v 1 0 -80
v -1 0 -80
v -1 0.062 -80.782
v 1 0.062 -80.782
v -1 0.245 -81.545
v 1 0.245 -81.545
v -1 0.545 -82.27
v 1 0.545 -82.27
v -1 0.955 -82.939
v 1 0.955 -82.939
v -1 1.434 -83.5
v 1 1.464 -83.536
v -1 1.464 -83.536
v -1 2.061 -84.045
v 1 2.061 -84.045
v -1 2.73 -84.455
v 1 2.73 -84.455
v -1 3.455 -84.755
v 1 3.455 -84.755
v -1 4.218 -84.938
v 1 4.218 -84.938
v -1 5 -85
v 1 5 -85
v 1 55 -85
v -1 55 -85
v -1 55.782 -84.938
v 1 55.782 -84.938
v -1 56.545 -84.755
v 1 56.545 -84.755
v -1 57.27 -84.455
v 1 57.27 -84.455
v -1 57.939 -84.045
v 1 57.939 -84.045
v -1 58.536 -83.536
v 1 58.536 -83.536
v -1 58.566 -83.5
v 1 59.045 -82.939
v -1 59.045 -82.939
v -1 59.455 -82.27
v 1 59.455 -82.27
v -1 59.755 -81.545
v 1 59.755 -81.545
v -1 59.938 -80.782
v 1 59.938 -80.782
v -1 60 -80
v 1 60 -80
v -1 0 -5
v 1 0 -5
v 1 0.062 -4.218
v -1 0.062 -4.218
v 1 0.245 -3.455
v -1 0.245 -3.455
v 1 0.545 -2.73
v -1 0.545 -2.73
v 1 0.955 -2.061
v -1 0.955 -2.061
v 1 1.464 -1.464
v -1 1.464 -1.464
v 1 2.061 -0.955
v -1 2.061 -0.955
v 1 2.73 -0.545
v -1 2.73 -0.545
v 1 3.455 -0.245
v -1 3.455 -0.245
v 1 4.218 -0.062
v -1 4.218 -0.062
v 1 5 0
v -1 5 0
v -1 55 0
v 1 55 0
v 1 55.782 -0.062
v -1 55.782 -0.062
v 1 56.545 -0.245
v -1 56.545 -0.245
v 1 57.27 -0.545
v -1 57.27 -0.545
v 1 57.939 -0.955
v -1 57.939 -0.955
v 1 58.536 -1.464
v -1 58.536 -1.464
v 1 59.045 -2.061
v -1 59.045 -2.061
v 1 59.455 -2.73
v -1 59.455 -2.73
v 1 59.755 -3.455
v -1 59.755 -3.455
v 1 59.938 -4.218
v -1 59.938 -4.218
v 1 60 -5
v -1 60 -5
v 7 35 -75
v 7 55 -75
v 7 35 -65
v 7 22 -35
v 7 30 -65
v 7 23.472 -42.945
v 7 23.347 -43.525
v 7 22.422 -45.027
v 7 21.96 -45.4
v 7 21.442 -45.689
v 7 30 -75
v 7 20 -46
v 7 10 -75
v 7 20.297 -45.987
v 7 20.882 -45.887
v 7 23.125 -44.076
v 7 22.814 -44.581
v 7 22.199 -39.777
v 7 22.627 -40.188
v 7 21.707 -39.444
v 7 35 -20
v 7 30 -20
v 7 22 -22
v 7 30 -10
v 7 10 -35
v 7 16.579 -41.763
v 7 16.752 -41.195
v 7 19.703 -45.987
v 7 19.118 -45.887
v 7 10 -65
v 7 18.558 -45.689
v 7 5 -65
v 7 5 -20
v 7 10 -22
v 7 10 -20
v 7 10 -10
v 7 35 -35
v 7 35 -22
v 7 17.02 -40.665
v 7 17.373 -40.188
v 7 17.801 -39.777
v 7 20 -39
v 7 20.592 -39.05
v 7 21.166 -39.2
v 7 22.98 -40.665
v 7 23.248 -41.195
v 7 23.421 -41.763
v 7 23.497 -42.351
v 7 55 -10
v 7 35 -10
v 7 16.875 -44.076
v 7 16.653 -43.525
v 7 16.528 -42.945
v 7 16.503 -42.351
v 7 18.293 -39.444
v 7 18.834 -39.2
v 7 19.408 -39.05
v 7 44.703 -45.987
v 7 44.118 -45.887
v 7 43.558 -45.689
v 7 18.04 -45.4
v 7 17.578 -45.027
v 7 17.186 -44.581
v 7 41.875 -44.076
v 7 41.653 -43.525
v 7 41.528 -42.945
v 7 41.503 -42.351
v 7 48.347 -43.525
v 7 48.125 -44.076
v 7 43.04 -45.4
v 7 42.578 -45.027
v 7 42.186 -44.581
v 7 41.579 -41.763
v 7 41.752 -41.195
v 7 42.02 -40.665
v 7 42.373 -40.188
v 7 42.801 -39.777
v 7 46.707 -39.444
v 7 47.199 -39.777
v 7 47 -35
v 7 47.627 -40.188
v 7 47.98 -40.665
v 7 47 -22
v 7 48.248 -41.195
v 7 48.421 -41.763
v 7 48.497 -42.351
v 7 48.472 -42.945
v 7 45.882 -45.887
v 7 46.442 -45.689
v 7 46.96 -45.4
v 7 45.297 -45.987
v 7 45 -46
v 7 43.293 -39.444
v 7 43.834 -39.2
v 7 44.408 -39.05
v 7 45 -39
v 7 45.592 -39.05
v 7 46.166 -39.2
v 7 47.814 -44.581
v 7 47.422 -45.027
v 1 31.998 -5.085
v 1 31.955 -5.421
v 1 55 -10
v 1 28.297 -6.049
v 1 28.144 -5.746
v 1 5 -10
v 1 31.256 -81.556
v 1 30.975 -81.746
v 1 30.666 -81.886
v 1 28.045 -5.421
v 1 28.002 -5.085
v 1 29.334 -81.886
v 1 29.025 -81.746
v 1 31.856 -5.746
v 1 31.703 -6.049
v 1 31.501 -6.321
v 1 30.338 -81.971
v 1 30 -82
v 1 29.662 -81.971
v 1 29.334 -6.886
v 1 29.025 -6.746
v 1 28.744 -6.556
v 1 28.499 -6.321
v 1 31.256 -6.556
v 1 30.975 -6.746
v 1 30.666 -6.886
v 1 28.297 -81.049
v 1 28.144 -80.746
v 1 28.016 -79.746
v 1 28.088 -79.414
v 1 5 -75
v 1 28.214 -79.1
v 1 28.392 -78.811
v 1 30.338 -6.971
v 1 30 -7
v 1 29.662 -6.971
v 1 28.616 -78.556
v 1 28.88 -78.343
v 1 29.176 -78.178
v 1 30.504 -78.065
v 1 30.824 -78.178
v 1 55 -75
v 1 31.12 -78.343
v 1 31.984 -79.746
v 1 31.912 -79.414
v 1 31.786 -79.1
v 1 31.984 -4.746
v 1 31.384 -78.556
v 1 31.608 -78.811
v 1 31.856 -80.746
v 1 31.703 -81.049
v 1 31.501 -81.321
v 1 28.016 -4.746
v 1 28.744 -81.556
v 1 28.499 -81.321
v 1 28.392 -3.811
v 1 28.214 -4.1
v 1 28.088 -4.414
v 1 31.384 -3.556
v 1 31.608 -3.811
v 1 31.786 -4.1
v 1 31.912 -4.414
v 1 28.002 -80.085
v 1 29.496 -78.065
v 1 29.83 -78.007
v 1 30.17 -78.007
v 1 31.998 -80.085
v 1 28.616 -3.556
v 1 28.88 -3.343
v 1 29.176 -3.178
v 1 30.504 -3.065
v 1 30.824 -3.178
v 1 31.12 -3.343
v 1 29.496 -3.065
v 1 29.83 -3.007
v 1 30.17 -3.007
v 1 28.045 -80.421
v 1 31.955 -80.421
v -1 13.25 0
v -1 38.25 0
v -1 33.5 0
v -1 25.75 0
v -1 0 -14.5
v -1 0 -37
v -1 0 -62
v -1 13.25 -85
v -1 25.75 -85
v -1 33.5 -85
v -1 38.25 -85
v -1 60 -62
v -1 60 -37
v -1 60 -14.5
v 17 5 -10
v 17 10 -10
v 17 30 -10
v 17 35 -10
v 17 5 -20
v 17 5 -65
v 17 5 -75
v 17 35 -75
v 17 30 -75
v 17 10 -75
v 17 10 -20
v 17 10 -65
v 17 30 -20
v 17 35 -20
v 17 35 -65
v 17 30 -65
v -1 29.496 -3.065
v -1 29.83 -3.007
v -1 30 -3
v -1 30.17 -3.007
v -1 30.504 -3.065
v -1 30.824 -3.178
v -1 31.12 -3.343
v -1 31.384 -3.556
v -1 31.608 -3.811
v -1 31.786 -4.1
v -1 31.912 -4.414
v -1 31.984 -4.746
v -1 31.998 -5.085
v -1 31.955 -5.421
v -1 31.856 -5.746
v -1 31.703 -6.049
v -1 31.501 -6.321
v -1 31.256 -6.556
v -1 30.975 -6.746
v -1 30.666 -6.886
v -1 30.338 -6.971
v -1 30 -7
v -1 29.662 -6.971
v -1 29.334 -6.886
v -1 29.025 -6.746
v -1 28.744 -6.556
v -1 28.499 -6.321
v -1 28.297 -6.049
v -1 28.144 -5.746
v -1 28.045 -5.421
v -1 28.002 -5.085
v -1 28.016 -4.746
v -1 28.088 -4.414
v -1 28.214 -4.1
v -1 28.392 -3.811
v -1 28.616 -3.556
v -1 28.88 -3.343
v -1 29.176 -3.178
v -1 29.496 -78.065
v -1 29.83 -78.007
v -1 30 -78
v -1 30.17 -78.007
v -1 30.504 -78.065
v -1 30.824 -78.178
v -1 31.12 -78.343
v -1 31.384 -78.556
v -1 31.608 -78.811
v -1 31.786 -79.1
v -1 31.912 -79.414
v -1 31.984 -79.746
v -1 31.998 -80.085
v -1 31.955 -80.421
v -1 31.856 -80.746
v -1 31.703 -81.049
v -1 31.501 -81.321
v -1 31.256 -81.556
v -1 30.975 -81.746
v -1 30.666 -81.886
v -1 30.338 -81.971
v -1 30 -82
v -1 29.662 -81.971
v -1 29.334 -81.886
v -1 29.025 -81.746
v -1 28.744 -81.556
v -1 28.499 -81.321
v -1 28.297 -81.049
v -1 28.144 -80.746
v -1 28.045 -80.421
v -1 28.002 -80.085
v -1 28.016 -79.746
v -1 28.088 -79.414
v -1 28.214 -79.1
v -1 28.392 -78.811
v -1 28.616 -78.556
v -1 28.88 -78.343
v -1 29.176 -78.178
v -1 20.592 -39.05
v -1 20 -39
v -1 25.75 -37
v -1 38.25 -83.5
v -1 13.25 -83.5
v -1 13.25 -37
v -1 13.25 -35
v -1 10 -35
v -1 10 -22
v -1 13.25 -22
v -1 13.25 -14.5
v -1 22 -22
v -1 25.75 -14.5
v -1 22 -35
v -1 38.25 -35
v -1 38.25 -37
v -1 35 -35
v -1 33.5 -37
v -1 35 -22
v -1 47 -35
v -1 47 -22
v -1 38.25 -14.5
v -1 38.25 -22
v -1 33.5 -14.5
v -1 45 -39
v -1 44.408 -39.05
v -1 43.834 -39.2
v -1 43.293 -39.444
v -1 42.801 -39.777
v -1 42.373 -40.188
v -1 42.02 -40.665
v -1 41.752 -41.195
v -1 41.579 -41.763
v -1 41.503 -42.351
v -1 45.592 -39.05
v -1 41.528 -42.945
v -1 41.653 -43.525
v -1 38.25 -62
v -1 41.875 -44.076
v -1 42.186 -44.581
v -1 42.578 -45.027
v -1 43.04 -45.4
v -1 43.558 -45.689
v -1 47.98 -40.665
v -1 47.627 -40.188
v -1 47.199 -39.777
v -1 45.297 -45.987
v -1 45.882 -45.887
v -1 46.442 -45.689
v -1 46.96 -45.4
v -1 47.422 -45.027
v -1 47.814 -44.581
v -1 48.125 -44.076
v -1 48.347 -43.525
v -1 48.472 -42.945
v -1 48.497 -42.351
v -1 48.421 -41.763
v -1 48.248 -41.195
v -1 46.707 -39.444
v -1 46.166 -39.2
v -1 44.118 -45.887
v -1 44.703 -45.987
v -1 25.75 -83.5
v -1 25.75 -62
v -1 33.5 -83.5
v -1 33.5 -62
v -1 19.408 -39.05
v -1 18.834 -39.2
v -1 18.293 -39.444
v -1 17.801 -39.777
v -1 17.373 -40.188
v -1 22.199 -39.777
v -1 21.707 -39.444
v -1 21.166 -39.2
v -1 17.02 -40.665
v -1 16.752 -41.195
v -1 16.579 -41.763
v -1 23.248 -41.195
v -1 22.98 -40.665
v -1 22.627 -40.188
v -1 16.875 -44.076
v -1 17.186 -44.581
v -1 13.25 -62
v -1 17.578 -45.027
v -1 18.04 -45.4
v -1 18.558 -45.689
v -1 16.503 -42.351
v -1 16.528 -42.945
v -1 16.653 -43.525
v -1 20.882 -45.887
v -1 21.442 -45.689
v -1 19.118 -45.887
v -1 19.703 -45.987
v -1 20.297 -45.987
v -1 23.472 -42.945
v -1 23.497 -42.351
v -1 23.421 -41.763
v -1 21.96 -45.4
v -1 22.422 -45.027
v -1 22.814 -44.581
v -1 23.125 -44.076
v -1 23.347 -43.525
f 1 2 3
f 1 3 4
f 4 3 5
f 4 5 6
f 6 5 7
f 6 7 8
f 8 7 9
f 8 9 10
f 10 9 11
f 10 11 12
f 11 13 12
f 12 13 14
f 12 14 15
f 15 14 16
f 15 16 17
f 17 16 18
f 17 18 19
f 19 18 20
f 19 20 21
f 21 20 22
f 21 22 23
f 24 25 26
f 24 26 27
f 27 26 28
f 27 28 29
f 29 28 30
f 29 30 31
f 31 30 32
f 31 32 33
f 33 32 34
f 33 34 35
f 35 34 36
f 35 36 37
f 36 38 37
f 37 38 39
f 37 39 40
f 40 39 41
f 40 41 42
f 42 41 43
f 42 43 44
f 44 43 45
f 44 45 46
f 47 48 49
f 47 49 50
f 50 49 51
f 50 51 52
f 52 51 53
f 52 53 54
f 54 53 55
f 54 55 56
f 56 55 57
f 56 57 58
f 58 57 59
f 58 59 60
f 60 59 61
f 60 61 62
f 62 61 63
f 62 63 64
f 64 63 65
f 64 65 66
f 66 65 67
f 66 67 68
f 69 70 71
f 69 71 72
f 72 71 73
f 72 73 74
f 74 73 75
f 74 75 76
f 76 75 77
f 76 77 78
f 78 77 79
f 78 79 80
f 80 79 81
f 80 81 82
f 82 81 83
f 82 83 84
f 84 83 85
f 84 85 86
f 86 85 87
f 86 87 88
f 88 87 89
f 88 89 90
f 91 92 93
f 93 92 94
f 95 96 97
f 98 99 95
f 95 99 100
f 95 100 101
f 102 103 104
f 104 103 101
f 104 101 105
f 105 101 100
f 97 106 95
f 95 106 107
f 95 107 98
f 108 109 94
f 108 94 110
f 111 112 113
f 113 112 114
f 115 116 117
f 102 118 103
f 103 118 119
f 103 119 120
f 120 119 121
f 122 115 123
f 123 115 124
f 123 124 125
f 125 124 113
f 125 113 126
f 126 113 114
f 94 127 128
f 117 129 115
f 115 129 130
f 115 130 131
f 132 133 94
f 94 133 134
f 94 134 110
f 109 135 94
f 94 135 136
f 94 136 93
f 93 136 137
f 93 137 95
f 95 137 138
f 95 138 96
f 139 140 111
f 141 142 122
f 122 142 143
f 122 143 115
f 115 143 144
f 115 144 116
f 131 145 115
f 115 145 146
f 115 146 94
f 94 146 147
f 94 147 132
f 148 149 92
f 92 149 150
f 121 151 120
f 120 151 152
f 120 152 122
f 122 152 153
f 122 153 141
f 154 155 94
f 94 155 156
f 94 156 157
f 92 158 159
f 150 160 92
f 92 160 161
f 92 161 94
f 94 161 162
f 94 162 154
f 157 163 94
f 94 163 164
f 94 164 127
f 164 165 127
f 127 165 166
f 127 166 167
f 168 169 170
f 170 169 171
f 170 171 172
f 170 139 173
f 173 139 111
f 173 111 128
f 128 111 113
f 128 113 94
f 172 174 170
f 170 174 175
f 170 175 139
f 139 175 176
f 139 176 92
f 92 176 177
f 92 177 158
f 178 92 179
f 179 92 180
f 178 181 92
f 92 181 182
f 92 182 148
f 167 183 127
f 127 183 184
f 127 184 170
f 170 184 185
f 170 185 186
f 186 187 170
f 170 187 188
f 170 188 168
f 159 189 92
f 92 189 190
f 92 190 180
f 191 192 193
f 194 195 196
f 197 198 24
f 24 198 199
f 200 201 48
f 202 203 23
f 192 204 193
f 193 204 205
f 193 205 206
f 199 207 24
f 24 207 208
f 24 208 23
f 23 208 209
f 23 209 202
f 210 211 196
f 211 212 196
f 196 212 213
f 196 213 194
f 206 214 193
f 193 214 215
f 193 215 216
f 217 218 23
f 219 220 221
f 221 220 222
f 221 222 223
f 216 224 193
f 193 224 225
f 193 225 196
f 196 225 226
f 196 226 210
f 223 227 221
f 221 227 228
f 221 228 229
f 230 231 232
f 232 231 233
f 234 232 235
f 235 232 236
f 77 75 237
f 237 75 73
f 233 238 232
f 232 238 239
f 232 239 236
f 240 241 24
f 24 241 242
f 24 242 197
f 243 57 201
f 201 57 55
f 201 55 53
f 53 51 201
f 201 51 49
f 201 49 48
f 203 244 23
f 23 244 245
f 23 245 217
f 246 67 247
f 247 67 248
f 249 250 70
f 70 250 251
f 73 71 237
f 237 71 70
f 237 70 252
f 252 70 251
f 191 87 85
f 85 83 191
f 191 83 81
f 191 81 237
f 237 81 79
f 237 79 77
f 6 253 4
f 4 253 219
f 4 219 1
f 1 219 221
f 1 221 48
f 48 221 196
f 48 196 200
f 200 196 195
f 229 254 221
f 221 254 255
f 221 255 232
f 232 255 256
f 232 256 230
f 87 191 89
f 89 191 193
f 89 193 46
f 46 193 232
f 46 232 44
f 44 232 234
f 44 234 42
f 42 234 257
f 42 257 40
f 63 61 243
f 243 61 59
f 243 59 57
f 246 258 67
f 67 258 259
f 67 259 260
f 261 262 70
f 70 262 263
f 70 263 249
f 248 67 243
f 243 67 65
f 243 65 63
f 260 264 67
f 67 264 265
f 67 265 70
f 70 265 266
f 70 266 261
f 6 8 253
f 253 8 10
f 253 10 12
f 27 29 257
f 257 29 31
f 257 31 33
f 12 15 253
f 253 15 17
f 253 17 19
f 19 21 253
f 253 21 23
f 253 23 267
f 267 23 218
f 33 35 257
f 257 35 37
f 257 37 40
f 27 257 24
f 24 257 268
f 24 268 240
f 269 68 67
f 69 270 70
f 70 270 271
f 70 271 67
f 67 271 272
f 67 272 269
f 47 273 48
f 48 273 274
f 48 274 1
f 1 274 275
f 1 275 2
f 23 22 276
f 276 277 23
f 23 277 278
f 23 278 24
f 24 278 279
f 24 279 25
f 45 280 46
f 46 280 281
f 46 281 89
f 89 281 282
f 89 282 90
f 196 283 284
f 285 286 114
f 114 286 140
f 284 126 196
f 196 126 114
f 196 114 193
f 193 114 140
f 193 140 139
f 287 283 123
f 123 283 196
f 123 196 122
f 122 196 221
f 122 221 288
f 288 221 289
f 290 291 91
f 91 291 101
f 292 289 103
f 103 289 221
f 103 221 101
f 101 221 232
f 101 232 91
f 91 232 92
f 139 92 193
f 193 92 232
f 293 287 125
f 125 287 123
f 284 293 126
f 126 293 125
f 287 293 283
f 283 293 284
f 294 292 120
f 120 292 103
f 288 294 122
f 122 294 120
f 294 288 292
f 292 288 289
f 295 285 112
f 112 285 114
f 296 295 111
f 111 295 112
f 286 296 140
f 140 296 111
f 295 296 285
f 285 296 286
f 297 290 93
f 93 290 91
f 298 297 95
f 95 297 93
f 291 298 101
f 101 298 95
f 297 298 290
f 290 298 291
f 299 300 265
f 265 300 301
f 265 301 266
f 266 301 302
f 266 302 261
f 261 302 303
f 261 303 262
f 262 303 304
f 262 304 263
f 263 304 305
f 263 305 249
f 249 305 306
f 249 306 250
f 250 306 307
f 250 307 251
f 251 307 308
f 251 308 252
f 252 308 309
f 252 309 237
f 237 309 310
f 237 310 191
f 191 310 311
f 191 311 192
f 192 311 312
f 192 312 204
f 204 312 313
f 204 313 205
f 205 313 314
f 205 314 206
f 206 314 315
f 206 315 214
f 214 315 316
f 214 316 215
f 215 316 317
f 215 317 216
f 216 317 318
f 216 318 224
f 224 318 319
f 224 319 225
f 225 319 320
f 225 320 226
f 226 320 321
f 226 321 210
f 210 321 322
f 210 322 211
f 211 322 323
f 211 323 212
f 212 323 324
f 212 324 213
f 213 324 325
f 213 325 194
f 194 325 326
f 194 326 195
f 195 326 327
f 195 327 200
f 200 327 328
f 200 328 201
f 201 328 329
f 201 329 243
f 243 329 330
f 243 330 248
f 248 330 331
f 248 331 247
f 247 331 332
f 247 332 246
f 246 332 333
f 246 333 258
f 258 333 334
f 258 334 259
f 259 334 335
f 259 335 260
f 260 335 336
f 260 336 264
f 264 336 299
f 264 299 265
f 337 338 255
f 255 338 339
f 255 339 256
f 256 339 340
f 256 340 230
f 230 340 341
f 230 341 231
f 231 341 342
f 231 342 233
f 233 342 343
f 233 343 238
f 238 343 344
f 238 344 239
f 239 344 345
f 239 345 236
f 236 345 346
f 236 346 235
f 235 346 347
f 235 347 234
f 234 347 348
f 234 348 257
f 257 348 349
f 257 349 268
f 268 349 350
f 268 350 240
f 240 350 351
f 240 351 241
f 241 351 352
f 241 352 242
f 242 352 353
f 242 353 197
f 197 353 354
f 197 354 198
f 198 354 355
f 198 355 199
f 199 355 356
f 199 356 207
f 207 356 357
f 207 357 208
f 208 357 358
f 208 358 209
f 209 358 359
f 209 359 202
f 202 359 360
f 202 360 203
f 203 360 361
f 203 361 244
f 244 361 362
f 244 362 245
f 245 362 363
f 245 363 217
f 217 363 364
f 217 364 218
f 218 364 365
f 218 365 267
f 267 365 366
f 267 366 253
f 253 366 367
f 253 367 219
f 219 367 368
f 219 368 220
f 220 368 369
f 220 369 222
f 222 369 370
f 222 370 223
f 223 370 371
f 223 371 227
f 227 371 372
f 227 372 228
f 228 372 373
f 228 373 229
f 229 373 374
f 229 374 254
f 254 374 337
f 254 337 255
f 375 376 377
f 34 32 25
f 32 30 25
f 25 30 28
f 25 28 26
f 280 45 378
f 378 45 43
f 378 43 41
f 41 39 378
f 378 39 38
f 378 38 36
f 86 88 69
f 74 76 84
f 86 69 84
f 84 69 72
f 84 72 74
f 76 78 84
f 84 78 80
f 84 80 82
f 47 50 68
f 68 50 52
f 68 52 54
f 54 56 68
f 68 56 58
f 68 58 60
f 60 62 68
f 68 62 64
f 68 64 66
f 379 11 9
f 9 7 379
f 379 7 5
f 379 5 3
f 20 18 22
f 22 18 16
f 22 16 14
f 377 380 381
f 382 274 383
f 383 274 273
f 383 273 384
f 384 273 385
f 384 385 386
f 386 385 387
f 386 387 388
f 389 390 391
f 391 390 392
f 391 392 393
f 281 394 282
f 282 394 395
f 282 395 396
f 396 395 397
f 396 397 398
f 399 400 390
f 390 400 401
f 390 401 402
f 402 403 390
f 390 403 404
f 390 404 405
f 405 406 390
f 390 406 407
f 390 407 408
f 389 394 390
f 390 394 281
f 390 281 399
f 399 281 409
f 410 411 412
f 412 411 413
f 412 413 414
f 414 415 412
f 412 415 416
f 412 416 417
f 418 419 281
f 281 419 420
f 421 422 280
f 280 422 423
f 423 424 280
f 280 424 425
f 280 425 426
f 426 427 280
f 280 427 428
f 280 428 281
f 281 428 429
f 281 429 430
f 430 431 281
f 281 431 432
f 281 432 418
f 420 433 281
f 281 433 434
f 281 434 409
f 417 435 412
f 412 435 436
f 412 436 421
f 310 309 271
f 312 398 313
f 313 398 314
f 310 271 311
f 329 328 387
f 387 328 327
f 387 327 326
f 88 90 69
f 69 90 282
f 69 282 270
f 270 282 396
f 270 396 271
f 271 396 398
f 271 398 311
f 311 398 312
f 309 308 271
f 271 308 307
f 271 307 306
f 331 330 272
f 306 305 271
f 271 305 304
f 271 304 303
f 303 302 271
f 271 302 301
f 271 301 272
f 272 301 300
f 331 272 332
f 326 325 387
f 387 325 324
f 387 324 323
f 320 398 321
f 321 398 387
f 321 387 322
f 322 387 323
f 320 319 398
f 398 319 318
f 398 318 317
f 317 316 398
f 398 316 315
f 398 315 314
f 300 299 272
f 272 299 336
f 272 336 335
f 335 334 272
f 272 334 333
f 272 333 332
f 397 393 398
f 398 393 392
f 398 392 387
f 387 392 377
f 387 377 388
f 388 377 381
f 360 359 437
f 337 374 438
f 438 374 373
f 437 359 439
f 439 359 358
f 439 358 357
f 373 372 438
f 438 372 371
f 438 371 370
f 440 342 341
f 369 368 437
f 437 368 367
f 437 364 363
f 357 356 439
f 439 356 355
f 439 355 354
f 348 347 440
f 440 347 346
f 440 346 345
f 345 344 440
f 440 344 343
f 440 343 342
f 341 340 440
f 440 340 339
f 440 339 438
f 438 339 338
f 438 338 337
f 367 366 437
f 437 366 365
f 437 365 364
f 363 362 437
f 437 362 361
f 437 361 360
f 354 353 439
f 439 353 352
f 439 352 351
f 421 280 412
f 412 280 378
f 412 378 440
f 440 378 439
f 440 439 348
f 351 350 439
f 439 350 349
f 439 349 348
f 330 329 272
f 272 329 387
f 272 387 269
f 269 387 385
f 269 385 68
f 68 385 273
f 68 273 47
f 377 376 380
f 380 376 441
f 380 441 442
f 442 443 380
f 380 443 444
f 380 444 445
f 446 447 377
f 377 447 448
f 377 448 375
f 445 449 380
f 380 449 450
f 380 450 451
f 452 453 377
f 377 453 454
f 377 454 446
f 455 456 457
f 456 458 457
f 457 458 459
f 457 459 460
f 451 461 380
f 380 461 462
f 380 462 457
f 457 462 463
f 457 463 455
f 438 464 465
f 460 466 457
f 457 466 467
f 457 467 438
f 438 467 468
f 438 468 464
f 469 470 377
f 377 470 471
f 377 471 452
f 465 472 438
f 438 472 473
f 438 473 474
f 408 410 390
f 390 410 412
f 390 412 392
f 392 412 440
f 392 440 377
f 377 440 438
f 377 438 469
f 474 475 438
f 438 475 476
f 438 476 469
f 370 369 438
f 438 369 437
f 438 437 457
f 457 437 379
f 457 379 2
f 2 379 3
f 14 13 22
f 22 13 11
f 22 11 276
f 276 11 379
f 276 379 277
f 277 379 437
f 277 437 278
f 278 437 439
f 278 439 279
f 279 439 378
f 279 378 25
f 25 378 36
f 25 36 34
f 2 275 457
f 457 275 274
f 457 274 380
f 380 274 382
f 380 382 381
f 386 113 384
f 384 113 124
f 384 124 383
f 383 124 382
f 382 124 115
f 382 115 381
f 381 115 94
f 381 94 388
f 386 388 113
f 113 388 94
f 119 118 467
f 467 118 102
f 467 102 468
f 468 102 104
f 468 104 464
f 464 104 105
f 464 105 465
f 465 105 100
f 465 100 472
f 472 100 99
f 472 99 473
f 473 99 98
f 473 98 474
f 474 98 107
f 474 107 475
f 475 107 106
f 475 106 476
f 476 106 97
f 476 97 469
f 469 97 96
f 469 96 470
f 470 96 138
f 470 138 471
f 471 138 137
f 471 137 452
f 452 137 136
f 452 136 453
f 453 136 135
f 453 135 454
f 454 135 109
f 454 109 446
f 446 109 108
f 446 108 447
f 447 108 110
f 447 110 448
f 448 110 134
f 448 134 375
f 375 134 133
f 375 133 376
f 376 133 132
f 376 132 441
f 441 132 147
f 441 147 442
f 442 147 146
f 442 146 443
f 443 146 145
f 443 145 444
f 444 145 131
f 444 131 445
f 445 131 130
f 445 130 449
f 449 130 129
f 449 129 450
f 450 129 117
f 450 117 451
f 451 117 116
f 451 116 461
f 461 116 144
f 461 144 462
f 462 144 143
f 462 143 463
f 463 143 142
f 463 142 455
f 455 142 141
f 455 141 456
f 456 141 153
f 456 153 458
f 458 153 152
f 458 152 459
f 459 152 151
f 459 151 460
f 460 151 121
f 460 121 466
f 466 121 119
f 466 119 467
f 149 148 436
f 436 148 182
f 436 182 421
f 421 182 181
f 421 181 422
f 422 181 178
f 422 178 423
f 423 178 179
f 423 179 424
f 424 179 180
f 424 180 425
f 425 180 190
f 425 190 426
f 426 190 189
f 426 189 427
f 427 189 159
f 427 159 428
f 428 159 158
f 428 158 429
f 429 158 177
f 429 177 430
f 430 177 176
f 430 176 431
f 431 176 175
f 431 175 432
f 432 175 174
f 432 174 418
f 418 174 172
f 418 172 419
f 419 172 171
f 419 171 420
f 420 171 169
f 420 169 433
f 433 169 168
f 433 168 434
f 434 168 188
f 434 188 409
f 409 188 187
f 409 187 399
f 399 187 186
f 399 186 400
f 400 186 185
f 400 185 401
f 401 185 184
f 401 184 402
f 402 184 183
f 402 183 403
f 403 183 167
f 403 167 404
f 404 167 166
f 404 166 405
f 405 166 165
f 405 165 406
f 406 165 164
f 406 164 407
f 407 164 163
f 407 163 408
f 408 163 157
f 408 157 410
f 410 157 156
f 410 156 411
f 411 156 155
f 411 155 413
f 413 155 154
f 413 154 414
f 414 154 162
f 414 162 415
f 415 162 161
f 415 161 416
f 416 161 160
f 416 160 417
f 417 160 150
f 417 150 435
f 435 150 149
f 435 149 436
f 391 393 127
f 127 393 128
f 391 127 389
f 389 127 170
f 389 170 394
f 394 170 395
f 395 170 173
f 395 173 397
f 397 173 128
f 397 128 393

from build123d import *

# Parameters (mm, degrees)
SKETCH1_W           = 85
SKETCH1_H           = 60
BOSS_EXTRUDE1_DEPTH = 1
SKETCH2_W           = 65
SKETCH2_H           = 50
BOSS_EXTRUDE2_DEPTH = 6
SKETCH3_W           = 10
SKETCH3_H           = 5
BOSS_EXTRUDE3_DEPTH = 10
SKETCH4_R           = 2
CUT_EXTRUDE1_DEPTH  = 10
SKETCH5_W           = 85
SKETCH5_H           = 60
SKETCH5_R           = 2
BOSS_EXTRUDE4_DEPTH = 1
SKETCH6_R           = 3.5
SKETCH6_W           = 13
SKETCH6_H           = 12
CUT_EXTRUDE2_DEPTH  = 10
FILLET1_R           = 5
FILLET2_R           = 5
FILLET3_R           = 5
FILLET4_R           = 5


with BuildPart() as part:
    # Sketch1 → Boss-Extrude1 (new body)
    with BuildSketch(Plane(origin=(0, 0, 0), x_dir=(0, 0, -1), z_dir=(1, 0, 0))):
        with Locations((42.5, 30)):
            Rectangle(SKETCH1_W, SKETCH1_H)
    extrude(amount=BOSS_EXTRUDE1_DEPTH)

    # Sketch2 → Boss-Extrude2 (add)
    with BuildSketch(Plane(origin=(1, 0, 0), x_dir=(0, 0, -1), z_dir=(1, 0, 0))):
        with Locations((42.5, 30)):
            Rectangle(SKETCH2_W, SKETCH2_H)
    extrude(amount=BOSS_EXTRUDE2_DEPTH)

    # Sketch3 → Boss-Extrude3 (add)
    with BuildSketch(Plane(origin=(7, 0, 0), x_dir=(0, 0, -1), z_dir=(1, 0, 0))):
        with Locations((15, 7.5)):
            Rectangle(SKETCH3_W, SKETCH3_H)
        with Locations((70, 7.5)):
            Rectangle(SKETCH3_W, SKETCH3_H)
        with Locations((15, 32.5)):
            Rectangle(SKETCH3_W, SKETCH3_H)
        with Locations((70, 32.5)):
            Rectangle(SKETCH3_W, SKETCH3_H)
    extrude(amount=BOSS_EXTRUDE3_DEPTH)

    # Sketch4 → Cut-Extrude1 (cut)
    with BuildSketch(Plane(origin=(1, 0, 0), x_dir=(0, 0, -1), z_dir=(1, 0, 0))):
        with Locations((5, 30)):
            Circle(SKETCH4_R)
        with Locations((80, 30)):
            Circle(SKETCH4_R)
    extrude(amount=-CUT_EXTRUDE1_DEPTH, mode=Mode.SUBTRACT)

    # Sketch5 → Boss-Extrude4 (add)
    with BuildSketch(Plane.ZY):
        with Locations((-42.5, 30)):
            Rectangle(SKETCH5_W, SKETCH5_H)
        with Locations(Location((-80, 30, 0), (0, 0, 180))):
            Circle(SKETCH5_R, mode=Mode.SUBTRACT)
        with Locations(Location((-5, 30, 0), (0, 0, 180))):
            Circle(SKETCH5_R, mode=Mode.SUBTRACT)
    extrude(amount=BOSS_EXTRUDE4_DEPTH)

    # Sketch6 → Cut-Extrude2 (cut)
    with BuildSketch(Plane.ZY.offset(1)):
        with Locations((-42.5, 45)):
            Circle(SKETCH6_R)
        with Locations((-42.5, 20)):
            Circle(SKETCH6_R)
        with Locations((-28.5, 41)):
            Rectangle(SKETCH6_W, SKETCH6_H)
        with Locations((-28.5, 16)):
            Rectangle(SKETCH6_W, SKETCH6_H)
    extrude(amount=-CUT_EXTRUDE2_DEPTH, mode=Mode.SUBTRACT)

    # Fillet1
    fillet1_edges = [part.edges().sort_by_distance(p)[0] for p in [
        (0, 60, 0),
    ]]
    fillet(fillet1_edges, radius=FILLET1_R)

    # Fillet2
    fillet2_edges = [part.edges().sort_by_distance(p)[0] for p in [
        (0, 0, 0),
    ]]
    fillet(fillet2_edges, radius=FILLET2_R)

    # Fillet3
    fillet3_edges = [part.edges().sort_by_distance(p)[0] for p in [
        (0, 60, -85),
    ]]
    fillet(fillet3_edges, radius=FILLET3_R)

    # Fillet4
    fillet4_edges = [part.edges().sort_by_distance(p)[0] for p in [
        (0, 0, -85),
    ]]
    fillet(fillet4_edges, radius=FILLET4_R)


solid = part.part
